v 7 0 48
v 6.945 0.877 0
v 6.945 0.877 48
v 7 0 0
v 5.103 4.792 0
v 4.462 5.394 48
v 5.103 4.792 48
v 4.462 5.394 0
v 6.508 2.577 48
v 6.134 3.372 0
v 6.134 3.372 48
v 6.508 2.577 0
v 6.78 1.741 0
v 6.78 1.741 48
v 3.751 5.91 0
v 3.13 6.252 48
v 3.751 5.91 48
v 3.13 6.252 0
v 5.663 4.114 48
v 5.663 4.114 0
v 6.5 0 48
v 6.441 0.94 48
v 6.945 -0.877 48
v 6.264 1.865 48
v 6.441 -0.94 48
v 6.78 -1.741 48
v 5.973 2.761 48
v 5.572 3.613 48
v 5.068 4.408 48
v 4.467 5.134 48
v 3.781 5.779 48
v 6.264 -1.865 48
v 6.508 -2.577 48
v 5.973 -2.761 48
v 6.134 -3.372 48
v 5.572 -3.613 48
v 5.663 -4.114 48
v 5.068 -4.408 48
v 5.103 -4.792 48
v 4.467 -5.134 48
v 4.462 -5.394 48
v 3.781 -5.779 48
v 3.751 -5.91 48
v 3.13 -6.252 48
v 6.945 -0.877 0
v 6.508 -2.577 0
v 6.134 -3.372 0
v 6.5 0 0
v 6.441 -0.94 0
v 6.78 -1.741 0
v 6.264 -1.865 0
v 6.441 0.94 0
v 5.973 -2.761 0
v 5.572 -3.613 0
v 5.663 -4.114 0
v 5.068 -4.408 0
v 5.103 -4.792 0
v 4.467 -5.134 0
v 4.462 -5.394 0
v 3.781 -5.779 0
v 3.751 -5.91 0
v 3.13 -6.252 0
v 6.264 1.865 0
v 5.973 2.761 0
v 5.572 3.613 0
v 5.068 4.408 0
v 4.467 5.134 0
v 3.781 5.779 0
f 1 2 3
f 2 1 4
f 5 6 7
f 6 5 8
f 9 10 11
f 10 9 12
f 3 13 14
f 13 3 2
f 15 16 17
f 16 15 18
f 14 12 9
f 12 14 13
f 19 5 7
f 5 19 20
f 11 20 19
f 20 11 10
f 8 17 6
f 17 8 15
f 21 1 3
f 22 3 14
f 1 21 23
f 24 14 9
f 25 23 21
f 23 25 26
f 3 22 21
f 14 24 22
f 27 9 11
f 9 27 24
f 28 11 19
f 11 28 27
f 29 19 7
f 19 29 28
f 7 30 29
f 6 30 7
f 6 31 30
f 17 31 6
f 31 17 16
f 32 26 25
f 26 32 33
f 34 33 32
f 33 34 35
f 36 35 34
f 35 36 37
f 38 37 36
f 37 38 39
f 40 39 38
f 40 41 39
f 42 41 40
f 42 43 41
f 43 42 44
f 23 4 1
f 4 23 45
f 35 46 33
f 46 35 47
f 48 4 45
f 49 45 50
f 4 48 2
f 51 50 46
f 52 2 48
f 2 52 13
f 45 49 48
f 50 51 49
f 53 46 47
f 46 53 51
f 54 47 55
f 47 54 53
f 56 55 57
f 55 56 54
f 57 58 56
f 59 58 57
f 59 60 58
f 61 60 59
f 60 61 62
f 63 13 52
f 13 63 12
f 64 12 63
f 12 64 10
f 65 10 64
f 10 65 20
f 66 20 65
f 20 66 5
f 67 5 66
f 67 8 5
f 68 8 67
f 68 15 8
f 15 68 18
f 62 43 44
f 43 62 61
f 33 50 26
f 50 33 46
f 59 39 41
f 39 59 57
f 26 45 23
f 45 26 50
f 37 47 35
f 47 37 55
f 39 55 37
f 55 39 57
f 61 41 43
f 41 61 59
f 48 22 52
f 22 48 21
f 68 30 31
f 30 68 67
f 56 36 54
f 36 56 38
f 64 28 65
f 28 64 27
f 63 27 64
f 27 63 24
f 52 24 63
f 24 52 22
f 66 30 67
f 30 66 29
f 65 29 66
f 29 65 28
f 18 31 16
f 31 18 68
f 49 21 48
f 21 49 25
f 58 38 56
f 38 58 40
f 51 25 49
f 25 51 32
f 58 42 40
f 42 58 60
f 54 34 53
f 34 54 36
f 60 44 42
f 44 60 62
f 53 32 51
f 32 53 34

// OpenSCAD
$fn = 50;


difference() {
	union() {
		cylinder(h = 48, r = 7.0000000000);
		translate(v = [-4.0000000000, 0, 0]) {
			cylinder(h = 48, r = 7.0000000000);
		}
	}
	union() {
		cylinder(h = 48, r = 3.2500000000);
		cylinder(h = 48, r = 1.8000000000);
		cylinder(h = 48, r = 1.8000000000);
		cylinder(h = 48, r = 1.8000000000);
		translate(v = [-8.5000000000, 0, 0]) {
			hull() {
				translate(v = [-3.7500000000, 0.0000000000, 0]) {
					cylinder(h = 48, r = 7.5000000000);
				}
				translate(v = [3.7500000000, 0.0000000000, 0]) {
					cylinder(h = 48, r = 7.5000000000);
				}
				translate(v = [-3.7500000000, -0.0000000000, 0]) {
					cylinder(h = 48, r = 7.5000000000);
				}
				translate(v = [3.7500000000, -0.0000000000, 0]) {
					cylinder(h = 48, r = 7.5000000000);
				}
			}
		}
		translate(v = [-1.0000000000, 0, 0.0000000000]) {
			cylinder(h = 48, r = 7.5000000000);
		}
	}
}
